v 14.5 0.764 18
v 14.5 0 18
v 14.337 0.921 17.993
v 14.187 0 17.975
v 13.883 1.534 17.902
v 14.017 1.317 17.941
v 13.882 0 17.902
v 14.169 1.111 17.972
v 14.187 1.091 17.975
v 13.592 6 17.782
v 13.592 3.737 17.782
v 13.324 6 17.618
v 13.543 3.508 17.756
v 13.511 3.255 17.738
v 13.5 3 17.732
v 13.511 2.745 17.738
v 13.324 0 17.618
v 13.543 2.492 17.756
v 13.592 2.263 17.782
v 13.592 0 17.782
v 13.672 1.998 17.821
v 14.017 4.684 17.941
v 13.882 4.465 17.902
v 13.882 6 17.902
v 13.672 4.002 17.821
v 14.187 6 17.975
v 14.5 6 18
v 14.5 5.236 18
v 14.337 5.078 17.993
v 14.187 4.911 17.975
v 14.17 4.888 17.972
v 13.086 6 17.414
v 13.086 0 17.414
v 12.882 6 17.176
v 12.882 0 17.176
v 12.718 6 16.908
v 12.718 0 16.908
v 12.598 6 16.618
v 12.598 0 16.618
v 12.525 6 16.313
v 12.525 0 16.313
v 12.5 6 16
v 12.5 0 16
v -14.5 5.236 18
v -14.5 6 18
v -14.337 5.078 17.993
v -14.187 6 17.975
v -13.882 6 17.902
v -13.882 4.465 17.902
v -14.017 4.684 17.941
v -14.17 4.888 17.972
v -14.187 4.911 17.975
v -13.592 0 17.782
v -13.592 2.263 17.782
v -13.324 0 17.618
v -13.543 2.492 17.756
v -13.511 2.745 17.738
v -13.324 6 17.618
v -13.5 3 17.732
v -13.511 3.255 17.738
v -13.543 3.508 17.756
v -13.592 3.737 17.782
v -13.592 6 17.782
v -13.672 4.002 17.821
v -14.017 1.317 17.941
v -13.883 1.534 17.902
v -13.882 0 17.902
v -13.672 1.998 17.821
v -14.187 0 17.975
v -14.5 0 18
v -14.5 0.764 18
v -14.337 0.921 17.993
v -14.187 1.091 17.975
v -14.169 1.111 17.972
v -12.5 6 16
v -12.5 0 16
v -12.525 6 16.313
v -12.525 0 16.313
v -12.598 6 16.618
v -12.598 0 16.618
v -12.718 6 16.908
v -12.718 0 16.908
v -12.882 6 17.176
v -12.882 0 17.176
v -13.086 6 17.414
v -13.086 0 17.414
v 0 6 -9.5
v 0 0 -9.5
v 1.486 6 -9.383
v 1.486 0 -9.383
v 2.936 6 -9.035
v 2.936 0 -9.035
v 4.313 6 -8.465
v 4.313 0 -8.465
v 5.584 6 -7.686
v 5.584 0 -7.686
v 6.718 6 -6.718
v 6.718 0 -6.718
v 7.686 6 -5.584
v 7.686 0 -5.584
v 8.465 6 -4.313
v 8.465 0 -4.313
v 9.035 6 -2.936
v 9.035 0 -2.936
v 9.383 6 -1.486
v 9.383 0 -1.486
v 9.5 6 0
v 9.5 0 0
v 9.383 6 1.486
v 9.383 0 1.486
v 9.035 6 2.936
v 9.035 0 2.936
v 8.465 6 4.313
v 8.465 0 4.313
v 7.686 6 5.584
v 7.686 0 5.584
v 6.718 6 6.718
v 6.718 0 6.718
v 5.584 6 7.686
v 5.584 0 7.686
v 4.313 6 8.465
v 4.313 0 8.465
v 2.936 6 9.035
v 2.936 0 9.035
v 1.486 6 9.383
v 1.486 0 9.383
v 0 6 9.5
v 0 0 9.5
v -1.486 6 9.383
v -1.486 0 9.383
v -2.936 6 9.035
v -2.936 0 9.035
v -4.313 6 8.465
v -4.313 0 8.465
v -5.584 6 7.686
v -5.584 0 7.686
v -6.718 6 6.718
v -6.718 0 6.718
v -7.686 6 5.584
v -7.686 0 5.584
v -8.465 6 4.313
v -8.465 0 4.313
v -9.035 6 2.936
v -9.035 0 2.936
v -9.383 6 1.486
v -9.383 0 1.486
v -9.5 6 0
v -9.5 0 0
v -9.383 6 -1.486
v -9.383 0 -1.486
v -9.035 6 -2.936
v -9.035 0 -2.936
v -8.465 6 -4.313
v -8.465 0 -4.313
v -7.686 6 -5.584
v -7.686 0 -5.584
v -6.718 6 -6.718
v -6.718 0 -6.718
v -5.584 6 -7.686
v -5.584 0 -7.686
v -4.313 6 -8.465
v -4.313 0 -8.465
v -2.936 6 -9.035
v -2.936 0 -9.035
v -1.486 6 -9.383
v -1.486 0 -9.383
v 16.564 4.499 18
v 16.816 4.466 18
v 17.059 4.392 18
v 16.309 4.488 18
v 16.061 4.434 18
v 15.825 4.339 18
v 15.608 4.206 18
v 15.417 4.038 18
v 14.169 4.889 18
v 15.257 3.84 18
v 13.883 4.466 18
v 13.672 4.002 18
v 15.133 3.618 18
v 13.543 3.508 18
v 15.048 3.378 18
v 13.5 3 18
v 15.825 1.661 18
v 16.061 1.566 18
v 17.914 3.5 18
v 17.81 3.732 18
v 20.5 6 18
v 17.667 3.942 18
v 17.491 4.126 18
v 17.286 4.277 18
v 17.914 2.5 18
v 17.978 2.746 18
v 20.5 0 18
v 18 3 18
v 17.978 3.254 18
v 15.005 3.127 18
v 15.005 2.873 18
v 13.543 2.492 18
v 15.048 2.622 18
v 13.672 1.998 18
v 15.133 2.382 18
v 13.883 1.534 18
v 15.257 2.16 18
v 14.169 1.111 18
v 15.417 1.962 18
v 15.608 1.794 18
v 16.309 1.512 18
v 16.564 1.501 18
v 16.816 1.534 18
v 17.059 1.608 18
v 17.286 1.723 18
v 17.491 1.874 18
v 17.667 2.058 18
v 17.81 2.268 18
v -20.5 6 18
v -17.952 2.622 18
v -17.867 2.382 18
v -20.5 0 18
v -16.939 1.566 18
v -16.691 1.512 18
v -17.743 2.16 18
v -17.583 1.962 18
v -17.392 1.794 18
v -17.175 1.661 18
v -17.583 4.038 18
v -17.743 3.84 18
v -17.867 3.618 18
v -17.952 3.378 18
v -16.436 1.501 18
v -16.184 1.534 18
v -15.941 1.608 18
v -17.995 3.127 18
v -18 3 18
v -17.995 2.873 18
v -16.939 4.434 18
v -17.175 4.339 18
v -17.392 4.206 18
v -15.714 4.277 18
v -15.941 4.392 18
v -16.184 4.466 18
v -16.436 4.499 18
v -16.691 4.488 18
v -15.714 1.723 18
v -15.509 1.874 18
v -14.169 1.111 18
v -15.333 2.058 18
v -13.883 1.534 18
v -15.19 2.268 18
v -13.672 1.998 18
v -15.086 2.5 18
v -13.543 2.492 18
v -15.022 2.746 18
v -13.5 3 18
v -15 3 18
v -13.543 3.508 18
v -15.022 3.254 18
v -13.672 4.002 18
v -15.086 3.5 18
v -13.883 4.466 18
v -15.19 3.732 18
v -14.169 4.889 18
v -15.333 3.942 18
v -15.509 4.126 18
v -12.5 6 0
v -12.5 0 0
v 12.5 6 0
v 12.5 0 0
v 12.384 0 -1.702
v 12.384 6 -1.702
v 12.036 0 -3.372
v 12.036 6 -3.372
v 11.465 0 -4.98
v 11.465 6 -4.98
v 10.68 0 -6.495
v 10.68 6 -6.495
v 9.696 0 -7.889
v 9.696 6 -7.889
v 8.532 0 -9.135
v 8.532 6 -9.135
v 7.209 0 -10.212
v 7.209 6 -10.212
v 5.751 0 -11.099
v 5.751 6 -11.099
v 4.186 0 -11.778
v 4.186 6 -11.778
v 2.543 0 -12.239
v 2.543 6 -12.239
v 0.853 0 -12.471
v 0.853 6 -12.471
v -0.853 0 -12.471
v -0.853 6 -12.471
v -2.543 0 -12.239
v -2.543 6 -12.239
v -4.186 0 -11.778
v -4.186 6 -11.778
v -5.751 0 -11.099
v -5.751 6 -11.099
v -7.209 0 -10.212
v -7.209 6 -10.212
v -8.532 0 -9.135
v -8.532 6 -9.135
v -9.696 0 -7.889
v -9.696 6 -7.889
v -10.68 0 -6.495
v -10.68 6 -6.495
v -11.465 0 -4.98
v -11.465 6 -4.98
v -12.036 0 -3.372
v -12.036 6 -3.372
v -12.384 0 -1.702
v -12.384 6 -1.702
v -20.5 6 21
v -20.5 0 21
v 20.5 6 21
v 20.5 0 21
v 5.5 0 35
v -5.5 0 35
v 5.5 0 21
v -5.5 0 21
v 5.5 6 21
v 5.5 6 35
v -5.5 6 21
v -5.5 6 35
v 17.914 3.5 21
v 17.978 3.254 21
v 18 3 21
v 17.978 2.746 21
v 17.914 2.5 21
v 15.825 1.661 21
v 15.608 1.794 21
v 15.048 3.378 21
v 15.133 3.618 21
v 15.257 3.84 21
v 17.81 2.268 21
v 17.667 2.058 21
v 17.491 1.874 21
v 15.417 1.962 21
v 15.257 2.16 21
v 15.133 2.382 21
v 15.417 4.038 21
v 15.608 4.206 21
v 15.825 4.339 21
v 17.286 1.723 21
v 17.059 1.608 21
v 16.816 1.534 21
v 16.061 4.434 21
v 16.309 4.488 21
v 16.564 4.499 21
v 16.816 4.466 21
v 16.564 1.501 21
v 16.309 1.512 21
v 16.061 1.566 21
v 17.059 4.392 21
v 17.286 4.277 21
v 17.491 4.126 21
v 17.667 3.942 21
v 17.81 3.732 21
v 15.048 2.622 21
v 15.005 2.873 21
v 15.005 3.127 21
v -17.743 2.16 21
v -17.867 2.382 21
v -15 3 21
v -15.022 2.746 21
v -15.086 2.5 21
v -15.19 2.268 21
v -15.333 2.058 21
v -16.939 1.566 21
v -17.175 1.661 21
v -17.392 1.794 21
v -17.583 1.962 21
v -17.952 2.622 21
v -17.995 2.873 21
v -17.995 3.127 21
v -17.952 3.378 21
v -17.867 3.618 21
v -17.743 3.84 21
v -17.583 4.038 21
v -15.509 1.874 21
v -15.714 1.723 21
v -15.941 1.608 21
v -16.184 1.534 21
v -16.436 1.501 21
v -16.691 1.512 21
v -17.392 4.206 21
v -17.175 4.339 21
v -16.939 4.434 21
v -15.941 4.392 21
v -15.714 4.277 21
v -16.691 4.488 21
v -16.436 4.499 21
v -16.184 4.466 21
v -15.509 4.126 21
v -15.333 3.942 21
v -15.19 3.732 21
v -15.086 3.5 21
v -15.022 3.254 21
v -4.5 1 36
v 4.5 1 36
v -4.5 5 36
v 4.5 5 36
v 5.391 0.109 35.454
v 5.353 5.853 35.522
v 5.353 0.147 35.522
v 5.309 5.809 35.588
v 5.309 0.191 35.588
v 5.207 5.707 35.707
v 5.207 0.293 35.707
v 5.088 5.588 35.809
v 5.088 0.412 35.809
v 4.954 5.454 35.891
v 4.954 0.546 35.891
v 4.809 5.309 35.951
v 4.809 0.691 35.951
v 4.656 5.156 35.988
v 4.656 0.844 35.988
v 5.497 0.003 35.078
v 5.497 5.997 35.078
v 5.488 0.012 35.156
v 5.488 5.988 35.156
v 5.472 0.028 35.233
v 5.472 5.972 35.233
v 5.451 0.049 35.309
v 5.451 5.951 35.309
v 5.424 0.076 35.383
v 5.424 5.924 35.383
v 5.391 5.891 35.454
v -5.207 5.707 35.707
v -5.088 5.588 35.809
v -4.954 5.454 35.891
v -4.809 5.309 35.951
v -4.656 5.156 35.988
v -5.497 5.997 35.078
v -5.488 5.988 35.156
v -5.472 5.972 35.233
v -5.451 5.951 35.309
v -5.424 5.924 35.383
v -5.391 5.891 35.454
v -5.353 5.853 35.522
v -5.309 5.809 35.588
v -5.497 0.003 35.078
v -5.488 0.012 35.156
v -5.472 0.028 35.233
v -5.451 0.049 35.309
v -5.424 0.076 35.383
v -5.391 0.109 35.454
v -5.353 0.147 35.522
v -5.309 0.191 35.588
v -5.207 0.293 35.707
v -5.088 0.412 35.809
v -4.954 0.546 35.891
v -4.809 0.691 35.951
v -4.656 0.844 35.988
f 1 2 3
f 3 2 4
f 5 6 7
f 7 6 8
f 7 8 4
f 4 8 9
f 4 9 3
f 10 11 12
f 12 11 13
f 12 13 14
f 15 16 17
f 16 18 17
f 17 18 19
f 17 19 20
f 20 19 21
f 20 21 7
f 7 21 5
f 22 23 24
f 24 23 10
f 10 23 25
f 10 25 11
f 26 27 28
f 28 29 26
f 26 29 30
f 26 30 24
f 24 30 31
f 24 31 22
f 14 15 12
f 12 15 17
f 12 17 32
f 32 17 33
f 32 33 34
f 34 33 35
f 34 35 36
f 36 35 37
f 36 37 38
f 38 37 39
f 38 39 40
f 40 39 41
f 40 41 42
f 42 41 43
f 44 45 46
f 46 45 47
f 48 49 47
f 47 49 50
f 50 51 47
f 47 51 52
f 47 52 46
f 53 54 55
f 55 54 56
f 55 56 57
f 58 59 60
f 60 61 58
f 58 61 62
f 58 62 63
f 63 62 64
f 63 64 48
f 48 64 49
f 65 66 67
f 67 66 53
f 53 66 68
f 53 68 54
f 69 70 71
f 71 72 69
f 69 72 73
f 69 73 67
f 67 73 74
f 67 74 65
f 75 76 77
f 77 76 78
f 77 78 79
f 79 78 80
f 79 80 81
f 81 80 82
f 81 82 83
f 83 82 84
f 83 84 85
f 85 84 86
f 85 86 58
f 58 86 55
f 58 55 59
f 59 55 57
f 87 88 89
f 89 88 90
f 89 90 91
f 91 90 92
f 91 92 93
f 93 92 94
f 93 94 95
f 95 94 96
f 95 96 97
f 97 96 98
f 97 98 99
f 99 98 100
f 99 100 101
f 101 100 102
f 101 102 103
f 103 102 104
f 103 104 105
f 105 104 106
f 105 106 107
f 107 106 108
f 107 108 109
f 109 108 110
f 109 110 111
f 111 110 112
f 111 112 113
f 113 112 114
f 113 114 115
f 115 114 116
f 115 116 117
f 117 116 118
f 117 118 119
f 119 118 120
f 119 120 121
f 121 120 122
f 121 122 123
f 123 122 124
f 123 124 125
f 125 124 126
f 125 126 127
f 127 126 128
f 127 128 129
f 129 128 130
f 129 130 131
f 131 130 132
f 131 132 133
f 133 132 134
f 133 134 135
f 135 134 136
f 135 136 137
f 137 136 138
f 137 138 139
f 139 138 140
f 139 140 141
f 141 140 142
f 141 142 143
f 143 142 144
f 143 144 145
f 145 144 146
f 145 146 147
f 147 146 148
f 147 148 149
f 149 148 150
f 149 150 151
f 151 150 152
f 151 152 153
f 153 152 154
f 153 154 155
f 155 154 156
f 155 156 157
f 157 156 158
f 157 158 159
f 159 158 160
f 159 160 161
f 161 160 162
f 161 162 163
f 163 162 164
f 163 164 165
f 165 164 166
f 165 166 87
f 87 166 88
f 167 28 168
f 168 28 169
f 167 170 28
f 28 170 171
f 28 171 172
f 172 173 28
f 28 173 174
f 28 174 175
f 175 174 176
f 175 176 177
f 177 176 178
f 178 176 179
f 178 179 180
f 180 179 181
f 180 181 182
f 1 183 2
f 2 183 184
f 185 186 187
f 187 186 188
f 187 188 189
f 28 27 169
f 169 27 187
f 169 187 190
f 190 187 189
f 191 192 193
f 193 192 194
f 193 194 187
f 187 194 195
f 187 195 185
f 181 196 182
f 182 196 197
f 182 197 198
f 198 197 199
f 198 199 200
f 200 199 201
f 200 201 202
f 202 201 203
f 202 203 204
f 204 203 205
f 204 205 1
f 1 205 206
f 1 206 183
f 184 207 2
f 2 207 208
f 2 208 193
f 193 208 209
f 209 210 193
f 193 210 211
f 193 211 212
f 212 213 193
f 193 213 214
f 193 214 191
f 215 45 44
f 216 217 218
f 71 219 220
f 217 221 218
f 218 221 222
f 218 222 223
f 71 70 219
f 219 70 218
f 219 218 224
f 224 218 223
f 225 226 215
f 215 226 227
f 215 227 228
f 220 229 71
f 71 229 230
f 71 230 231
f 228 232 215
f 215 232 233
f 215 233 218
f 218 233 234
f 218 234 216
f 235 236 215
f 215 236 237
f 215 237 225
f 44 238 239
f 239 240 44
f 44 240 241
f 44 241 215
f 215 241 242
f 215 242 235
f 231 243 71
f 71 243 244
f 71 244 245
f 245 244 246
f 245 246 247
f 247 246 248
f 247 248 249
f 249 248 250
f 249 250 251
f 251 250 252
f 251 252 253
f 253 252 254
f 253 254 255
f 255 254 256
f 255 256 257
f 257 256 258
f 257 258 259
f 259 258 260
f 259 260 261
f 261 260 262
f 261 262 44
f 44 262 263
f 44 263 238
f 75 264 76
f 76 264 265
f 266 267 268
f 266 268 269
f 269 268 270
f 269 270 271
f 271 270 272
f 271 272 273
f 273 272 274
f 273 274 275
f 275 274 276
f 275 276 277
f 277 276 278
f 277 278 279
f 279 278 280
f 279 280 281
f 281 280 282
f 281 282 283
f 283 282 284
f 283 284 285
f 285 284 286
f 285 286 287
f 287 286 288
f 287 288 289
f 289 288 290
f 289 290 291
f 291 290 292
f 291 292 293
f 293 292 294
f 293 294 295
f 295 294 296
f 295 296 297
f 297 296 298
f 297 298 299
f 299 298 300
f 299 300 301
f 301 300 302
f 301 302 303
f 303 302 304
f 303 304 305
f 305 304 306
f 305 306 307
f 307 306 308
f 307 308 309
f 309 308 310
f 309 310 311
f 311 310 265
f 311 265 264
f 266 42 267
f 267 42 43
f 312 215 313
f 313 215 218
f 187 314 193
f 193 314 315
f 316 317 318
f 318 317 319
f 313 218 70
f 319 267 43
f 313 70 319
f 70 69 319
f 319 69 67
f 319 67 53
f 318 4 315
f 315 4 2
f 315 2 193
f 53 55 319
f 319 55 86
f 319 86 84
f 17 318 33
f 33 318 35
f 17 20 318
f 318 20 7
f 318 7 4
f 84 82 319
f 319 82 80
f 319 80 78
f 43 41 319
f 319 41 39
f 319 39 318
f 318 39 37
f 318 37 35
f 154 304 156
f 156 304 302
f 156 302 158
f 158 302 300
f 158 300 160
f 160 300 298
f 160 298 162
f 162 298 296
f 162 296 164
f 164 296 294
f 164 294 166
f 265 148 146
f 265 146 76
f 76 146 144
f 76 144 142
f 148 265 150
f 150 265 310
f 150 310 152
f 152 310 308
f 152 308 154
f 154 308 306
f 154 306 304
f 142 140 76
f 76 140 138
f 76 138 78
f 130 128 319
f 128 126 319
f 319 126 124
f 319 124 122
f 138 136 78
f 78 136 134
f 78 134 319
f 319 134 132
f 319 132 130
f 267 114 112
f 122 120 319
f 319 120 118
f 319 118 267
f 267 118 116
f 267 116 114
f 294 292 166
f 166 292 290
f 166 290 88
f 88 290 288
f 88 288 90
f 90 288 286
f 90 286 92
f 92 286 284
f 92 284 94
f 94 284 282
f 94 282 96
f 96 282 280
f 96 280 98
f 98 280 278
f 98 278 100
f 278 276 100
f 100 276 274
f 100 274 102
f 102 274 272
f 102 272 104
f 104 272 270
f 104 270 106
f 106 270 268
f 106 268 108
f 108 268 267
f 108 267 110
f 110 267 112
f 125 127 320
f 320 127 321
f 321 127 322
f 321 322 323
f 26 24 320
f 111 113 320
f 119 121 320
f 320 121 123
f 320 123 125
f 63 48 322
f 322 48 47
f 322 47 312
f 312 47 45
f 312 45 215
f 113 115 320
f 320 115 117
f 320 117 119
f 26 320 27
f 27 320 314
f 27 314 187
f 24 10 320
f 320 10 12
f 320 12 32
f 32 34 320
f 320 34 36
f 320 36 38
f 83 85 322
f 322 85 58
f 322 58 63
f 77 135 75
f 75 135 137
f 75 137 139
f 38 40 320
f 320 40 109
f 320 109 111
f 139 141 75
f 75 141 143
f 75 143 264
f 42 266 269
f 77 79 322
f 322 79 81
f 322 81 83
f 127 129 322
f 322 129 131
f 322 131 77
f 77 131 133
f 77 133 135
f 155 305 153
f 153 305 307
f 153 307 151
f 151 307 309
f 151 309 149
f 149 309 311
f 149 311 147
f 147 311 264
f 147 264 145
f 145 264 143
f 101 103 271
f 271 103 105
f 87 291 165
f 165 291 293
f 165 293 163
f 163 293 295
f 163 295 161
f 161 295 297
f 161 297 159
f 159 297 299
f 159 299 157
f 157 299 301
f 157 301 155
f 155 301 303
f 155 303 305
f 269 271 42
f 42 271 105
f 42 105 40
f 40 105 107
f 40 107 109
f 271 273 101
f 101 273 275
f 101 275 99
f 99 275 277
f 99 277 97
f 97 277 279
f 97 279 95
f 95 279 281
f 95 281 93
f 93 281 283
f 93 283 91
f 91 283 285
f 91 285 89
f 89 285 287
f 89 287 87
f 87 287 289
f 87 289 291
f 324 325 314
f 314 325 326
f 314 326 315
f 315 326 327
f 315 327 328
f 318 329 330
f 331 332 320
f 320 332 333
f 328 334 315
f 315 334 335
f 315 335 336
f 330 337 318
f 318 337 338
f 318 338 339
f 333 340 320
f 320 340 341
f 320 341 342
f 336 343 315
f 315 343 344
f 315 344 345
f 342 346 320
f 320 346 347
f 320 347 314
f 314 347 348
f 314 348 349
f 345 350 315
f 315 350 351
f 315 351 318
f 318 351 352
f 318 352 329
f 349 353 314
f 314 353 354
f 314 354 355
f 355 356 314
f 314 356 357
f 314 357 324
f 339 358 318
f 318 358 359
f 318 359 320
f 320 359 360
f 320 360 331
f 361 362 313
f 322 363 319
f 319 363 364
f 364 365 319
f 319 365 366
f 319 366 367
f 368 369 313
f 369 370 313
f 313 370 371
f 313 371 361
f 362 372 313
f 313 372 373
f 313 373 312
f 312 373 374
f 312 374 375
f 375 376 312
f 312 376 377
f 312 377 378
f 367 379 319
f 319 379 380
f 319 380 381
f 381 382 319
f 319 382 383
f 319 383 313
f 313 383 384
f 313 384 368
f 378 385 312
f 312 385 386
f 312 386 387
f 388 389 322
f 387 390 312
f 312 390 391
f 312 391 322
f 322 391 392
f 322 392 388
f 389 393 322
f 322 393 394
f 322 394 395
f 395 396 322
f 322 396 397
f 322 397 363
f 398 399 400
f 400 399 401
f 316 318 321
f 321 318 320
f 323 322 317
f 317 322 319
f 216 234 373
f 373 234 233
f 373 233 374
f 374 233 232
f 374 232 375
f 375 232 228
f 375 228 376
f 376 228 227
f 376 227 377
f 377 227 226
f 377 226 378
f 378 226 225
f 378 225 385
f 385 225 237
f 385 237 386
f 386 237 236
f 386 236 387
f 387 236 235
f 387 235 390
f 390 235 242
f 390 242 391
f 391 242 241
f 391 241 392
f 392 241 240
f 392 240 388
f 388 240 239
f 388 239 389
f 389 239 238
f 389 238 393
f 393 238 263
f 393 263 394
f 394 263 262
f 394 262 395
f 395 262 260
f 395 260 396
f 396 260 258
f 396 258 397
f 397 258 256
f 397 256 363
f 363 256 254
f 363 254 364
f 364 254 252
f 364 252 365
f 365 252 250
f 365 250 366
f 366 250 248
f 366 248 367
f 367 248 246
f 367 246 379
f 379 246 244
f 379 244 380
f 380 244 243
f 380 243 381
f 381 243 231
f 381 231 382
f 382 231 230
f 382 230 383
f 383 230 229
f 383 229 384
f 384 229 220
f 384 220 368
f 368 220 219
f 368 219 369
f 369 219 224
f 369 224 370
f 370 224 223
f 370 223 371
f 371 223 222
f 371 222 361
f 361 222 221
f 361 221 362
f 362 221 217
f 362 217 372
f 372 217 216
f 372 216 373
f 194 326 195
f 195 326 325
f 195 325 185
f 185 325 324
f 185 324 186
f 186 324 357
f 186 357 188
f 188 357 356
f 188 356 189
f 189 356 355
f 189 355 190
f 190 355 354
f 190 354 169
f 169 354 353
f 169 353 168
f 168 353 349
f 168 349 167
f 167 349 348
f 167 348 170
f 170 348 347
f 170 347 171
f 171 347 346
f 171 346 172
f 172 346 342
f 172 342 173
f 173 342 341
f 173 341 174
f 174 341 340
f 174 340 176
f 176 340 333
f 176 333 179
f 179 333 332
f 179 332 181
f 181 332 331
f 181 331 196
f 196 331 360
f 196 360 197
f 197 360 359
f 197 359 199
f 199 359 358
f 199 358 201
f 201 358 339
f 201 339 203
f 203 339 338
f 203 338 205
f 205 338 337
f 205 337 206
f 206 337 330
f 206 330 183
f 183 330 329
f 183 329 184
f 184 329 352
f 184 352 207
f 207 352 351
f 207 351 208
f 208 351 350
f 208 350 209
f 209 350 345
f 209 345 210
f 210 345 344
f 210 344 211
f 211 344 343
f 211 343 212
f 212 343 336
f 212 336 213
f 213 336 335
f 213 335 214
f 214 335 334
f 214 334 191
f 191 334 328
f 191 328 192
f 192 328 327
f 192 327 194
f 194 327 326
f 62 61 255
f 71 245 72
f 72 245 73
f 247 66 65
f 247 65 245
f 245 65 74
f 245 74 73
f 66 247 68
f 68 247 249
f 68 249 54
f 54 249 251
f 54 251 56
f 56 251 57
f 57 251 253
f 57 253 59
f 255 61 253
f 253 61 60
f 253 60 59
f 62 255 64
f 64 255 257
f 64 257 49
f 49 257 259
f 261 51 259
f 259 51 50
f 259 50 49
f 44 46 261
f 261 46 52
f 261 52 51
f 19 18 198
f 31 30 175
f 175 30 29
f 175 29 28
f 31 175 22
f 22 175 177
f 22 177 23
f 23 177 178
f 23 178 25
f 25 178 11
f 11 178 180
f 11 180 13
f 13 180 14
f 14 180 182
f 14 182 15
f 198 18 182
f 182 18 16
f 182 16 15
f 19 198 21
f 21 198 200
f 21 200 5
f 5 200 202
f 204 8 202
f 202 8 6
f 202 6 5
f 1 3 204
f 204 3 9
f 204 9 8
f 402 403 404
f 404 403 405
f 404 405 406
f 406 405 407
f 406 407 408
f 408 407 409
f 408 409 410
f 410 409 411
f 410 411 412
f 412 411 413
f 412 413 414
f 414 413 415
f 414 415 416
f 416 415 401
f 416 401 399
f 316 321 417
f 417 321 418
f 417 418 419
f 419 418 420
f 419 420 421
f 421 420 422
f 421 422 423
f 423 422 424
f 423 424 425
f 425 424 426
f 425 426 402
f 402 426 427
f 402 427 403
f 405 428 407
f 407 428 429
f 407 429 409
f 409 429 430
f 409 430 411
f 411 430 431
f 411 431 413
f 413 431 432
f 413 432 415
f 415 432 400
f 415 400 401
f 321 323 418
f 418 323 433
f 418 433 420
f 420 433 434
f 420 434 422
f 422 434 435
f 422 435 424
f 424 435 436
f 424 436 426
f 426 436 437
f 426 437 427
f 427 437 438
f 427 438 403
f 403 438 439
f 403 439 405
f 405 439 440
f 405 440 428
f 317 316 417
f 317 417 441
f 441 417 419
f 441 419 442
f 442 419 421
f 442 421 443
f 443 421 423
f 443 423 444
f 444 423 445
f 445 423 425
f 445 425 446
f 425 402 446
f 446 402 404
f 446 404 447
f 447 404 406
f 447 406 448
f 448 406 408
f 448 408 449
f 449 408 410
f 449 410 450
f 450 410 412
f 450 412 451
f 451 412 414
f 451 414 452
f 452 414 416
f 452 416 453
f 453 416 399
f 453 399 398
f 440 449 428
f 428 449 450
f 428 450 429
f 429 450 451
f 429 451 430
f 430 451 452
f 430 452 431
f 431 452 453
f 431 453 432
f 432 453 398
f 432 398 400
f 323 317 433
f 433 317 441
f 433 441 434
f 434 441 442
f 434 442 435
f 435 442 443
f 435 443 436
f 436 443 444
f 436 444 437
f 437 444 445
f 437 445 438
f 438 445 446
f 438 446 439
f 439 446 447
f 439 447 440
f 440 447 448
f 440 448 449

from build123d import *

# Parameters (mm, degrees)
CROQUIS1_R              = 9.5
SALIENTE_EXTRUIR1_DEPTH = 6
CROQUIS2_R              = 1.5
CORTAR_EXTRUIR1_DEPTH   = 6
CROQUIS3_R              = 3
CORTAR_EXTRUIR2_DEPTH   = 6
REDONDEO1_R             = 1


with BuildPart() as part:
    # Croquis1 → Saliente-Extruir1 (new body)
    with BuildSketch(Plane(origin=(0, 0, 0), x_dir=(1, 0, 0), z_dir=(0, 1, 0))):
        with BuildLine():
            ThreePointArc((12.5, 0), (0, 12.5), (-12.5, 0))
            Line((-12.5, 0), (-12.5, -16))
            ThreePointArc((-12.5, -16), (-13.085786438, -17.414213562), (-14.5, -18))
            Line((-14.5, -18), (-20.5, -18))
            Line((-20.5, -18), (-20.5, -21))
            Line((-20.5, -21), (-5.5, -21))
            Line((-5.5, -21), (-5.5, -36))
            Line((-5.5, -36), (5.5, -36))
            Line((5.5, -36), (5.5, -21))
            Line((5.5, -21), (20.5, -21))
            Line((20.5, -21), (20.5, -18))
            Line((20.5, -18), (14.5, -18))
            ThreePointArc((14.5, -18), (13.085786438, -17.414213562), (12.5, -16))
            Line((12.5, -16), (12.5, 0))
        make_face()
        with Locations(Location((0, 0, 0), (0, 0, 270))):
            Circle(CROQUIS1_R, mode=Mode.SUBTRACT)
    extrude(amount=SALIENTE_EXTRUIR1_DEPTH)

    # Croquis2 → Cortar-Extruir1 (cut)
    with BuildSketch(Plane.XY.offset(21)):
        with Locations((-16.5, 3)):
            Circle(CROQUIS2_R)
        with Locations((16.5, 3)):
            Circle(CROQUIS2_R)
    extrude(amount=-CORTAR_EXTRUIR1_DEPTH, mode=Mode.SUBTRACT)

    # Croquis3 → Cortar-Extruir2 (cut)
    with BuildSketch(Plane(origin=(0, 0, 18), x_dir=(-1, 0, 0), z_dir=(0, 0, -1))):
        with Locations((-16.5, 3)):
            Circle(CROQUIS3_R)
        with Locations((16.5, 3)):
            Circle(CROQUIS3_R)
    extrude(amount=CORTAR_EXTRUIR2_DEPTH, mode=Mode.SUBTRACT)

    # Redondeo1
    redondeo1_edges = [part.edges().sort_by_distance(p)[0] for p in [
        (5.5, 3, 36),
        (-5.5, 3, 36),
        (0, 6, 36),
        (0, 0, 36),
    ]]
    fillet(redondeo1_edges, radius=REDONDEO1_R)


solid = part.part
